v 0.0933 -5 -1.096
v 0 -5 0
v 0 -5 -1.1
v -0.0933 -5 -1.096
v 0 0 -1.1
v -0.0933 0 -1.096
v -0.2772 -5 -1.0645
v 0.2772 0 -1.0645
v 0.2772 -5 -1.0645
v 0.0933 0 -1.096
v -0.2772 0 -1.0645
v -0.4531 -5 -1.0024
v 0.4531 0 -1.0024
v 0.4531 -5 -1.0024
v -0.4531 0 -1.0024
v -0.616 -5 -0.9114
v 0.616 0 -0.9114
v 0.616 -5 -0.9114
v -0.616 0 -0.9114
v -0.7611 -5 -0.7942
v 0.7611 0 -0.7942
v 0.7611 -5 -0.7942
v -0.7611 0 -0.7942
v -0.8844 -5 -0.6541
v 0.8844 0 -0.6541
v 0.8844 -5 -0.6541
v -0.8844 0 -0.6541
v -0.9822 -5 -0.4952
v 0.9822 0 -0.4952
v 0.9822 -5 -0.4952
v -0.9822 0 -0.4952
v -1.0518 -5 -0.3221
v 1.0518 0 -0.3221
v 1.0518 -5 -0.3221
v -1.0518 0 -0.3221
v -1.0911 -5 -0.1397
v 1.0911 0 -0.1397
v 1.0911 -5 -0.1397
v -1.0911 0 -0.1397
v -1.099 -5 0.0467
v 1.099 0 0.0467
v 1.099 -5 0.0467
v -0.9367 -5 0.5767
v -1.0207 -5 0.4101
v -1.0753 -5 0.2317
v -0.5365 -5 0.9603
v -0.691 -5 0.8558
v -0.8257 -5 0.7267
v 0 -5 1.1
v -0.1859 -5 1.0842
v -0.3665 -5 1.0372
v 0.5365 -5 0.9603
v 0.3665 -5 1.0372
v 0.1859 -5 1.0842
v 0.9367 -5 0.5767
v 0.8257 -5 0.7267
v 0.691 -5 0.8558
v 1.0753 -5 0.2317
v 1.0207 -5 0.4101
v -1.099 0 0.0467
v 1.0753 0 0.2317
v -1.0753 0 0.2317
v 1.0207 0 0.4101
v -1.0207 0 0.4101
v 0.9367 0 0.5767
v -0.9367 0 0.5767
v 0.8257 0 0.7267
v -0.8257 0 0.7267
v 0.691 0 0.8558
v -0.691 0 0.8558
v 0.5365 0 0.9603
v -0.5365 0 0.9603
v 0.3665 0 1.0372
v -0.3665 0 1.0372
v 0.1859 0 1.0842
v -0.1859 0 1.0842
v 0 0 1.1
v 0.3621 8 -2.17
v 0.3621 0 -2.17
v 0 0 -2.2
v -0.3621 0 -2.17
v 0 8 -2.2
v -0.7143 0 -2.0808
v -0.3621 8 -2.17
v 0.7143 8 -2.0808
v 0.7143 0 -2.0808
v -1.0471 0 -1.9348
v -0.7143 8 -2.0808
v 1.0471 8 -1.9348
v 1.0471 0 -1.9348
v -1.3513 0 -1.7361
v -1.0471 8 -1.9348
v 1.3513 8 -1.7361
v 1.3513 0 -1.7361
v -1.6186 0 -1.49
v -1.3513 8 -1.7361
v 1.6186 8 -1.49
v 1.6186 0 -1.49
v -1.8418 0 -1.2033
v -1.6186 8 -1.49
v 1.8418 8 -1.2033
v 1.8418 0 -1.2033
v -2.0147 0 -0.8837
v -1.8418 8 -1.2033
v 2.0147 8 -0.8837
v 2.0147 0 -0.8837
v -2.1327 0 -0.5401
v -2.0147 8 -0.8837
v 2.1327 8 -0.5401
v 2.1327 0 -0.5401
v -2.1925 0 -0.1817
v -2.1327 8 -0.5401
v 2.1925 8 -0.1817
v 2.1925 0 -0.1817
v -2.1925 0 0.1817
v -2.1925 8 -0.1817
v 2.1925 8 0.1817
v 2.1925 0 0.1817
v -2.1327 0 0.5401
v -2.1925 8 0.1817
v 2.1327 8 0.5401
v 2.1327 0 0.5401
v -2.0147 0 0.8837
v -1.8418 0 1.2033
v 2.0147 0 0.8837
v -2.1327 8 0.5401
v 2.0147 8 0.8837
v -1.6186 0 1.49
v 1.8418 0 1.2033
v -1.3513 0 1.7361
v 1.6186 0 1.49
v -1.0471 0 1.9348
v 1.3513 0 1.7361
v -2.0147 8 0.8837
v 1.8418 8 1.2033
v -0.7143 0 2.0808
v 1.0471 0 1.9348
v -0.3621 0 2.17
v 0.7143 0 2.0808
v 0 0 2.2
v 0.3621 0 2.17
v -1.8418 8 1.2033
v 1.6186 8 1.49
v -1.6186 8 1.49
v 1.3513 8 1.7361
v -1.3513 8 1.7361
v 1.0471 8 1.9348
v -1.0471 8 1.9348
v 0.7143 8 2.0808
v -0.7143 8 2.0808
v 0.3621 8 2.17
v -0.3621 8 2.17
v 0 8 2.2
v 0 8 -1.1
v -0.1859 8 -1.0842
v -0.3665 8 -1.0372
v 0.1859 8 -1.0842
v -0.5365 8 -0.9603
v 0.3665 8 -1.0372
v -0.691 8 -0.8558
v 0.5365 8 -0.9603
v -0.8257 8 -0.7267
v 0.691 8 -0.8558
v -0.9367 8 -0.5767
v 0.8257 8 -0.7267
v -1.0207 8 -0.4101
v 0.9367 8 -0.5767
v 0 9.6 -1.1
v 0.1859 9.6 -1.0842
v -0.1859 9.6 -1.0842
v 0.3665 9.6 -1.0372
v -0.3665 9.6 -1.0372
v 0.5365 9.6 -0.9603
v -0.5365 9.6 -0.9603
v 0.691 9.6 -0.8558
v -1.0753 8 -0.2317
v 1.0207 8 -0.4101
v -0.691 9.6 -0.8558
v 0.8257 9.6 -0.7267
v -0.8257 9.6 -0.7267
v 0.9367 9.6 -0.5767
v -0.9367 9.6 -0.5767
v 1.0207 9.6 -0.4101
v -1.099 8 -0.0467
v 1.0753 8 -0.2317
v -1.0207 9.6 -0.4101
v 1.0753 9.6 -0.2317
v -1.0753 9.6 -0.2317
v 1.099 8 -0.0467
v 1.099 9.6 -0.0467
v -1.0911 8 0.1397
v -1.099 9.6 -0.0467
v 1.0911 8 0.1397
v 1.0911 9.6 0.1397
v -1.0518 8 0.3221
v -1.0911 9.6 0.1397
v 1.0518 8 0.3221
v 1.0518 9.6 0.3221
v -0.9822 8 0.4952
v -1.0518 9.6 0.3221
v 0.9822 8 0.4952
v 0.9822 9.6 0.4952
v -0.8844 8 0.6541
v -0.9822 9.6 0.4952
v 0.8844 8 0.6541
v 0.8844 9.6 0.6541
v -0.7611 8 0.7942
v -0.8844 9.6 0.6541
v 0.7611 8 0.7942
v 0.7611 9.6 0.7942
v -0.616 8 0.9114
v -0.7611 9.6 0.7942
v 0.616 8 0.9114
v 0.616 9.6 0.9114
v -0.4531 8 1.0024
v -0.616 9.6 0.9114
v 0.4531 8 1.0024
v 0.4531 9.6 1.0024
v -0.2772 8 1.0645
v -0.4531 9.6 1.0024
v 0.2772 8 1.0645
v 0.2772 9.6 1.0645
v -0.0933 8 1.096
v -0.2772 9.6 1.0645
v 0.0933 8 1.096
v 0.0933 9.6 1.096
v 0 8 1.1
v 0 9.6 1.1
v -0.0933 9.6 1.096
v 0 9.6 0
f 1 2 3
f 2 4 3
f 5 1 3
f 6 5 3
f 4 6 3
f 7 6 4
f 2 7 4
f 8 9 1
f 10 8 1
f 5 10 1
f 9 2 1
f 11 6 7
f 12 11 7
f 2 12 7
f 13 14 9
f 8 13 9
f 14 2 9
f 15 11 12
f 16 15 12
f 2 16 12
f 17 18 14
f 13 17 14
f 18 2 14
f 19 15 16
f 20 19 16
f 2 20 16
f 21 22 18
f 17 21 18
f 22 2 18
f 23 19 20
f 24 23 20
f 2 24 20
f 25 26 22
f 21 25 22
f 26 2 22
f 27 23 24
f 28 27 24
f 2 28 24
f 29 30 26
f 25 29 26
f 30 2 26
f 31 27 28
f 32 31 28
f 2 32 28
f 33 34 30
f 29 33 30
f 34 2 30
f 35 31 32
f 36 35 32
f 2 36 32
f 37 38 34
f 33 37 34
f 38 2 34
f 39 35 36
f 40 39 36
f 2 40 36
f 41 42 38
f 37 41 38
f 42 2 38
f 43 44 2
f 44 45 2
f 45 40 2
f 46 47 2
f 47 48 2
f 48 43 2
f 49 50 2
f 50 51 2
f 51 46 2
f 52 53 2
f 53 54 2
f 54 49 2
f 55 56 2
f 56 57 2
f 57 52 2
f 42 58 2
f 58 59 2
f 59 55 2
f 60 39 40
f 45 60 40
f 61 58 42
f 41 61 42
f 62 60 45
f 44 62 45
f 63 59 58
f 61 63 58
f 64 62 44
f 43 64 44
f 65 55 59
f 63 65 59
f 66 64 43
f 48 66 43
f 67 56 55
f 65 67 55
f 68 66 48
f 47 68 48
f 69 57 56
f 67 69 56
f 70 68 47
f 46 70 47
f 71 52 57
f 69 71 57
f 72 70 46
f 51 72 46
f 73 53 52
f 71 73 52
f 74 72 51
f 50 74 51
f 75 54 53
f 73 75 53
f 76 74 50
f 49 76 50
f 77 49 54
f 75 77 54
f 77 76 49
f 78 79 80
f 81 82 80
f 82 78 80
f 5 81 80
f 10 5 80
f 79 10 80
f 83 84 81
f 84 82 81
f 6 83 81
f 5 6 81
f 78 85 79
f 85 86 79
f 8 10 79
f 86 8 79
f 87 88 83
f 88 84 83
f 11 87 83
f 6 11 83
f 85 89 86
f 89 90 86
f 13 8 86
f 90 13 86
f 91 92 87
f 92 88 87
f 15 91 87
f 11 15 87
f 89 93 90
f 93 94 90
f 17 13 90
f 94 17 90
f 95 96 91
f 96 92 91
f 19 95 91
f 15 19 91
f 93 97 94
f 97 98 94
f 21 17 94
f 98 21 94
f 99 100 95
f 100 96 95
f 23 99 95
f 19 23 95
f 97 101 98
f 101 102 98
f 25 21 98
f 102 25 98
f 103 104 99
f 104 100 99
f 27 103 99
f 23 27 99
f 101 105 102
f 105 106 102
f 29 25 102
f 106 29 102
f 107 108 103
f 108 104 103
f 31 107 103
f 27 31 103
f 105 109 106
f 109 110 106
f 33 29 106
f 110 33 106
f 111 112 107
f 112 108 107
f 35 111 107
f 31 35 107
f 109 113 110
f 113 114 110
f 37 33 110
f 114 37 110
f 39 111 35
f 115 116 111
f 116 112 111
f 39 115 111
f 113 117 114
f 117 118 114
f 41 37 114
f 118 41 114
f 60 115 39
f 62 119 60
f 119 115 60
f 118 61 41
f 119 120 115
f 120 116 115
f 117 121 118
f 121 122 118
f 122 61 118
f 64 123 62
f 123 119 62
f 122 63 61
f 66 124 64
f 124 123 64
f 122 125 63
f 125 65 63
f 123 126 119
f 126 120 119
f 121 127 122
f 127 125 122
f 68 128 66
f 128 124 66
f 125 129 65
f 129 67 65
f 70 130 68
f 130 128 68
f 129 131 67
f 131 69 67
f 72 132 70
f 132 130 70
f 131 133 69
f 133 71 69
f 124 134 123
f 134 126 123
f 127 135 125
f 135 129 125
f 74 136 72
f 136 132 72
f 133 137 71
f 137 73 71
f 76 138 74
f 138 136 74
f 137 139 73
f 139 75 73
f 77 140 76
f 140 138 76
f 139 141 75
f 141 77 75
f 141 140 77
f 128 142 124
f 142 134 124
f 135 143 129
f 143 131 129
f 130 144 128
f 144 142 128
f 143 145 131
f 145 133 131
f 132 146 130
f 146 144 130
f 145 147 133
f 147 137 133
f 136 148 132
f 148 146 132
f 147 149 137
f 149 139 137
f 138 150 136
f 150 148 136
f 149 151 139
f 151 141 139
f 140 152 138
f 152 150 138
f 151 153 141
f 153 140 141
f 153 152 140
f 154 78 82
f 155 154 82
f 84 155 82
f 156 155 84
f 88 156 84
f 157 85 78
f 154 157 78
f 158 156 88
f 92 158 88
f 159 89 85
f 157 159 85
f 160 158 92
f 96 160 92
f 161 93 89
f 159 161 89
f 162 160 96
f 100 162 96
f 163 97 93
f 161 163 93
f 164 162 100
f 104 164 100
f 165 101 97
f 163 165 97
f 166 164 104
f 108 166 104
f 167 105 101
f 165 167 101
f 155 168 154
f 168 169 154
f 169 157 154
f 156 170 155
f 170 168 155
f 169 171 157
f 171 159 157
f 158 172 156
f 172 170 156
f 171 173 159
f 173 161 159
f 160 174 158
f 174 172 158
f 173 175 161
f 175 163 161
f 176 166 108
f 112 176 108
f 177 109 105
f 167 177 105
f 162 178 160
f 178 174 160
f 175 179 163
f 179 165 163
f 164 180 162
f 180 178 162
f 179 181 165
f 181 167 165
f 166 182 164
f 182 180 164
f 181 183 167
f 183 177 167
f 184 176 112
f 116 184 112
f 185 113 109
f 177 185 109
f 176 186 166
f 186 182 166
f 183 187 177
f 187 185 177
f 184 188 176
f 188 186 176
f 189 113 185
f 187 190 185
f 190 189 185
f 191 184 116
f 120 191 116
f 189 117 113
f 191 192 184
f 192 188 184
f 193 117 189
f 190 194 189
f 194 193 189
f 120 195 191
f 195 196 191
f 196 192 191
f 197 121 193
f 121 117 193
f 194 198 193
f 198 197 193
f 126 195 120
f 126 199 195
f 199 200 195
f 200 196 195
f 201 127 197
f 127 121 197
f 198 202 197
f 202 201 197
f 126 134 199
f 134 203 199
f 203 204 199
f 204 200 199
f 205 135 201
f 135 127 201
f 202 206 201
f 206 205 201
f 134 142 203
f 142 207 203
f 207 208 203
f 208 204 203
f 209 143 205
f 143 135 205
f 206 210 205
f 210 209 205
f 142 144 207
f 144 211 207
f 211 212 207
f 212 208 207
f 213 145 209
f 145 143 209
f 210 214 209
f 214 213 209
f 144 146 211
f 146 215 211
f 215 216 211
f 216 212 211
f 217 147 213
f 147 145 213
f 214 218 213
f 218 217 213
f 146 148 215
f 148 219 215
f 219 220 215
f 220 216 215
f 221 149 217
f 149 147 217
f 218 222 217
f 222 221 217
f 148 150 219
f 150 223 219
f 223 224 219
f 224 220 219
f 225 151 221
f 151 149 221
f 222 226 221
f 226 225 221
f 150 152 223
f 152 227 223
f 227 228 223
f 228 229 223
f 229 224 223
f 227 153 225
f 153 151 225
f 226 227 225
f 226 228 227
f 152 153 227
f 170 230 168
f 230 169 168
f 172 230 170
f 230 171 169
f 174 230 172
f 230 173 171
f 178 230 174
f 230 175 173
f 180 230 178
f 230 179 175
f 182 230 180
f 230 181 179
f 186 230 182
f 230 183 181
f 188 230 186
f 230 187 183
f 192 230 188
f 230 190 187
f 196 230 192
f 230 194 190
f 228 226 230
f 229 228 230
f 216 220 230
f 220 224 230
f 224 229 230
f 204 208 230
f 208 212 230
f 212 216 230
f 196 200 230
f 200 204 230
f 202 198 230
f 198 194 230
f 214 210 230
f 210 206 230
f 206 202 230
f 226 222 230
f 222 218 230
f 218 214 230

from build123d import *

# Parameters (mm, degrees)
SKETCH1_R           = 2.2
BOSS_EXTRUDE1_DEPTH = 8
SKETCH2_R           = 1.1
BOSS_EXTRUDE2_DEPTH = 1.6
SKETCH3_R           = 1.1
BOSS_EXTRUDE3_DEPTH = 5


with BuildPart() as part:
    # Sketch1 → Boss-Extrude1 (new body)
    with BuildSketch(Plane(origin=(0, 0, 0), x_dir=(1, 0, 0), z_dir=(0, 1, 0))):
        Circle(SKETCH1_R)
    extrude(amount=BOSS_EXTRUDE1_DEPTH)

    # Sketch2 → Boss-Extrude2 (add)
    with BuildSketch(Plane(origin=(0, 8, 0), x_dir=(1, 0, 0), z_dir=(0, 1, 0))):
        Circle(SKETCH2_R)
    extrude(amount=BOSS_EXTRUDE2_DEPTH)

    # Sketch3 → Boss-Extrude3 (add)
    with BuildSketch(Plane.XZ):
        Circle(SKETCH3_R)
    extrude(amount=BOSS_EXTRUDE3_DEPTH)


solid = part.part
